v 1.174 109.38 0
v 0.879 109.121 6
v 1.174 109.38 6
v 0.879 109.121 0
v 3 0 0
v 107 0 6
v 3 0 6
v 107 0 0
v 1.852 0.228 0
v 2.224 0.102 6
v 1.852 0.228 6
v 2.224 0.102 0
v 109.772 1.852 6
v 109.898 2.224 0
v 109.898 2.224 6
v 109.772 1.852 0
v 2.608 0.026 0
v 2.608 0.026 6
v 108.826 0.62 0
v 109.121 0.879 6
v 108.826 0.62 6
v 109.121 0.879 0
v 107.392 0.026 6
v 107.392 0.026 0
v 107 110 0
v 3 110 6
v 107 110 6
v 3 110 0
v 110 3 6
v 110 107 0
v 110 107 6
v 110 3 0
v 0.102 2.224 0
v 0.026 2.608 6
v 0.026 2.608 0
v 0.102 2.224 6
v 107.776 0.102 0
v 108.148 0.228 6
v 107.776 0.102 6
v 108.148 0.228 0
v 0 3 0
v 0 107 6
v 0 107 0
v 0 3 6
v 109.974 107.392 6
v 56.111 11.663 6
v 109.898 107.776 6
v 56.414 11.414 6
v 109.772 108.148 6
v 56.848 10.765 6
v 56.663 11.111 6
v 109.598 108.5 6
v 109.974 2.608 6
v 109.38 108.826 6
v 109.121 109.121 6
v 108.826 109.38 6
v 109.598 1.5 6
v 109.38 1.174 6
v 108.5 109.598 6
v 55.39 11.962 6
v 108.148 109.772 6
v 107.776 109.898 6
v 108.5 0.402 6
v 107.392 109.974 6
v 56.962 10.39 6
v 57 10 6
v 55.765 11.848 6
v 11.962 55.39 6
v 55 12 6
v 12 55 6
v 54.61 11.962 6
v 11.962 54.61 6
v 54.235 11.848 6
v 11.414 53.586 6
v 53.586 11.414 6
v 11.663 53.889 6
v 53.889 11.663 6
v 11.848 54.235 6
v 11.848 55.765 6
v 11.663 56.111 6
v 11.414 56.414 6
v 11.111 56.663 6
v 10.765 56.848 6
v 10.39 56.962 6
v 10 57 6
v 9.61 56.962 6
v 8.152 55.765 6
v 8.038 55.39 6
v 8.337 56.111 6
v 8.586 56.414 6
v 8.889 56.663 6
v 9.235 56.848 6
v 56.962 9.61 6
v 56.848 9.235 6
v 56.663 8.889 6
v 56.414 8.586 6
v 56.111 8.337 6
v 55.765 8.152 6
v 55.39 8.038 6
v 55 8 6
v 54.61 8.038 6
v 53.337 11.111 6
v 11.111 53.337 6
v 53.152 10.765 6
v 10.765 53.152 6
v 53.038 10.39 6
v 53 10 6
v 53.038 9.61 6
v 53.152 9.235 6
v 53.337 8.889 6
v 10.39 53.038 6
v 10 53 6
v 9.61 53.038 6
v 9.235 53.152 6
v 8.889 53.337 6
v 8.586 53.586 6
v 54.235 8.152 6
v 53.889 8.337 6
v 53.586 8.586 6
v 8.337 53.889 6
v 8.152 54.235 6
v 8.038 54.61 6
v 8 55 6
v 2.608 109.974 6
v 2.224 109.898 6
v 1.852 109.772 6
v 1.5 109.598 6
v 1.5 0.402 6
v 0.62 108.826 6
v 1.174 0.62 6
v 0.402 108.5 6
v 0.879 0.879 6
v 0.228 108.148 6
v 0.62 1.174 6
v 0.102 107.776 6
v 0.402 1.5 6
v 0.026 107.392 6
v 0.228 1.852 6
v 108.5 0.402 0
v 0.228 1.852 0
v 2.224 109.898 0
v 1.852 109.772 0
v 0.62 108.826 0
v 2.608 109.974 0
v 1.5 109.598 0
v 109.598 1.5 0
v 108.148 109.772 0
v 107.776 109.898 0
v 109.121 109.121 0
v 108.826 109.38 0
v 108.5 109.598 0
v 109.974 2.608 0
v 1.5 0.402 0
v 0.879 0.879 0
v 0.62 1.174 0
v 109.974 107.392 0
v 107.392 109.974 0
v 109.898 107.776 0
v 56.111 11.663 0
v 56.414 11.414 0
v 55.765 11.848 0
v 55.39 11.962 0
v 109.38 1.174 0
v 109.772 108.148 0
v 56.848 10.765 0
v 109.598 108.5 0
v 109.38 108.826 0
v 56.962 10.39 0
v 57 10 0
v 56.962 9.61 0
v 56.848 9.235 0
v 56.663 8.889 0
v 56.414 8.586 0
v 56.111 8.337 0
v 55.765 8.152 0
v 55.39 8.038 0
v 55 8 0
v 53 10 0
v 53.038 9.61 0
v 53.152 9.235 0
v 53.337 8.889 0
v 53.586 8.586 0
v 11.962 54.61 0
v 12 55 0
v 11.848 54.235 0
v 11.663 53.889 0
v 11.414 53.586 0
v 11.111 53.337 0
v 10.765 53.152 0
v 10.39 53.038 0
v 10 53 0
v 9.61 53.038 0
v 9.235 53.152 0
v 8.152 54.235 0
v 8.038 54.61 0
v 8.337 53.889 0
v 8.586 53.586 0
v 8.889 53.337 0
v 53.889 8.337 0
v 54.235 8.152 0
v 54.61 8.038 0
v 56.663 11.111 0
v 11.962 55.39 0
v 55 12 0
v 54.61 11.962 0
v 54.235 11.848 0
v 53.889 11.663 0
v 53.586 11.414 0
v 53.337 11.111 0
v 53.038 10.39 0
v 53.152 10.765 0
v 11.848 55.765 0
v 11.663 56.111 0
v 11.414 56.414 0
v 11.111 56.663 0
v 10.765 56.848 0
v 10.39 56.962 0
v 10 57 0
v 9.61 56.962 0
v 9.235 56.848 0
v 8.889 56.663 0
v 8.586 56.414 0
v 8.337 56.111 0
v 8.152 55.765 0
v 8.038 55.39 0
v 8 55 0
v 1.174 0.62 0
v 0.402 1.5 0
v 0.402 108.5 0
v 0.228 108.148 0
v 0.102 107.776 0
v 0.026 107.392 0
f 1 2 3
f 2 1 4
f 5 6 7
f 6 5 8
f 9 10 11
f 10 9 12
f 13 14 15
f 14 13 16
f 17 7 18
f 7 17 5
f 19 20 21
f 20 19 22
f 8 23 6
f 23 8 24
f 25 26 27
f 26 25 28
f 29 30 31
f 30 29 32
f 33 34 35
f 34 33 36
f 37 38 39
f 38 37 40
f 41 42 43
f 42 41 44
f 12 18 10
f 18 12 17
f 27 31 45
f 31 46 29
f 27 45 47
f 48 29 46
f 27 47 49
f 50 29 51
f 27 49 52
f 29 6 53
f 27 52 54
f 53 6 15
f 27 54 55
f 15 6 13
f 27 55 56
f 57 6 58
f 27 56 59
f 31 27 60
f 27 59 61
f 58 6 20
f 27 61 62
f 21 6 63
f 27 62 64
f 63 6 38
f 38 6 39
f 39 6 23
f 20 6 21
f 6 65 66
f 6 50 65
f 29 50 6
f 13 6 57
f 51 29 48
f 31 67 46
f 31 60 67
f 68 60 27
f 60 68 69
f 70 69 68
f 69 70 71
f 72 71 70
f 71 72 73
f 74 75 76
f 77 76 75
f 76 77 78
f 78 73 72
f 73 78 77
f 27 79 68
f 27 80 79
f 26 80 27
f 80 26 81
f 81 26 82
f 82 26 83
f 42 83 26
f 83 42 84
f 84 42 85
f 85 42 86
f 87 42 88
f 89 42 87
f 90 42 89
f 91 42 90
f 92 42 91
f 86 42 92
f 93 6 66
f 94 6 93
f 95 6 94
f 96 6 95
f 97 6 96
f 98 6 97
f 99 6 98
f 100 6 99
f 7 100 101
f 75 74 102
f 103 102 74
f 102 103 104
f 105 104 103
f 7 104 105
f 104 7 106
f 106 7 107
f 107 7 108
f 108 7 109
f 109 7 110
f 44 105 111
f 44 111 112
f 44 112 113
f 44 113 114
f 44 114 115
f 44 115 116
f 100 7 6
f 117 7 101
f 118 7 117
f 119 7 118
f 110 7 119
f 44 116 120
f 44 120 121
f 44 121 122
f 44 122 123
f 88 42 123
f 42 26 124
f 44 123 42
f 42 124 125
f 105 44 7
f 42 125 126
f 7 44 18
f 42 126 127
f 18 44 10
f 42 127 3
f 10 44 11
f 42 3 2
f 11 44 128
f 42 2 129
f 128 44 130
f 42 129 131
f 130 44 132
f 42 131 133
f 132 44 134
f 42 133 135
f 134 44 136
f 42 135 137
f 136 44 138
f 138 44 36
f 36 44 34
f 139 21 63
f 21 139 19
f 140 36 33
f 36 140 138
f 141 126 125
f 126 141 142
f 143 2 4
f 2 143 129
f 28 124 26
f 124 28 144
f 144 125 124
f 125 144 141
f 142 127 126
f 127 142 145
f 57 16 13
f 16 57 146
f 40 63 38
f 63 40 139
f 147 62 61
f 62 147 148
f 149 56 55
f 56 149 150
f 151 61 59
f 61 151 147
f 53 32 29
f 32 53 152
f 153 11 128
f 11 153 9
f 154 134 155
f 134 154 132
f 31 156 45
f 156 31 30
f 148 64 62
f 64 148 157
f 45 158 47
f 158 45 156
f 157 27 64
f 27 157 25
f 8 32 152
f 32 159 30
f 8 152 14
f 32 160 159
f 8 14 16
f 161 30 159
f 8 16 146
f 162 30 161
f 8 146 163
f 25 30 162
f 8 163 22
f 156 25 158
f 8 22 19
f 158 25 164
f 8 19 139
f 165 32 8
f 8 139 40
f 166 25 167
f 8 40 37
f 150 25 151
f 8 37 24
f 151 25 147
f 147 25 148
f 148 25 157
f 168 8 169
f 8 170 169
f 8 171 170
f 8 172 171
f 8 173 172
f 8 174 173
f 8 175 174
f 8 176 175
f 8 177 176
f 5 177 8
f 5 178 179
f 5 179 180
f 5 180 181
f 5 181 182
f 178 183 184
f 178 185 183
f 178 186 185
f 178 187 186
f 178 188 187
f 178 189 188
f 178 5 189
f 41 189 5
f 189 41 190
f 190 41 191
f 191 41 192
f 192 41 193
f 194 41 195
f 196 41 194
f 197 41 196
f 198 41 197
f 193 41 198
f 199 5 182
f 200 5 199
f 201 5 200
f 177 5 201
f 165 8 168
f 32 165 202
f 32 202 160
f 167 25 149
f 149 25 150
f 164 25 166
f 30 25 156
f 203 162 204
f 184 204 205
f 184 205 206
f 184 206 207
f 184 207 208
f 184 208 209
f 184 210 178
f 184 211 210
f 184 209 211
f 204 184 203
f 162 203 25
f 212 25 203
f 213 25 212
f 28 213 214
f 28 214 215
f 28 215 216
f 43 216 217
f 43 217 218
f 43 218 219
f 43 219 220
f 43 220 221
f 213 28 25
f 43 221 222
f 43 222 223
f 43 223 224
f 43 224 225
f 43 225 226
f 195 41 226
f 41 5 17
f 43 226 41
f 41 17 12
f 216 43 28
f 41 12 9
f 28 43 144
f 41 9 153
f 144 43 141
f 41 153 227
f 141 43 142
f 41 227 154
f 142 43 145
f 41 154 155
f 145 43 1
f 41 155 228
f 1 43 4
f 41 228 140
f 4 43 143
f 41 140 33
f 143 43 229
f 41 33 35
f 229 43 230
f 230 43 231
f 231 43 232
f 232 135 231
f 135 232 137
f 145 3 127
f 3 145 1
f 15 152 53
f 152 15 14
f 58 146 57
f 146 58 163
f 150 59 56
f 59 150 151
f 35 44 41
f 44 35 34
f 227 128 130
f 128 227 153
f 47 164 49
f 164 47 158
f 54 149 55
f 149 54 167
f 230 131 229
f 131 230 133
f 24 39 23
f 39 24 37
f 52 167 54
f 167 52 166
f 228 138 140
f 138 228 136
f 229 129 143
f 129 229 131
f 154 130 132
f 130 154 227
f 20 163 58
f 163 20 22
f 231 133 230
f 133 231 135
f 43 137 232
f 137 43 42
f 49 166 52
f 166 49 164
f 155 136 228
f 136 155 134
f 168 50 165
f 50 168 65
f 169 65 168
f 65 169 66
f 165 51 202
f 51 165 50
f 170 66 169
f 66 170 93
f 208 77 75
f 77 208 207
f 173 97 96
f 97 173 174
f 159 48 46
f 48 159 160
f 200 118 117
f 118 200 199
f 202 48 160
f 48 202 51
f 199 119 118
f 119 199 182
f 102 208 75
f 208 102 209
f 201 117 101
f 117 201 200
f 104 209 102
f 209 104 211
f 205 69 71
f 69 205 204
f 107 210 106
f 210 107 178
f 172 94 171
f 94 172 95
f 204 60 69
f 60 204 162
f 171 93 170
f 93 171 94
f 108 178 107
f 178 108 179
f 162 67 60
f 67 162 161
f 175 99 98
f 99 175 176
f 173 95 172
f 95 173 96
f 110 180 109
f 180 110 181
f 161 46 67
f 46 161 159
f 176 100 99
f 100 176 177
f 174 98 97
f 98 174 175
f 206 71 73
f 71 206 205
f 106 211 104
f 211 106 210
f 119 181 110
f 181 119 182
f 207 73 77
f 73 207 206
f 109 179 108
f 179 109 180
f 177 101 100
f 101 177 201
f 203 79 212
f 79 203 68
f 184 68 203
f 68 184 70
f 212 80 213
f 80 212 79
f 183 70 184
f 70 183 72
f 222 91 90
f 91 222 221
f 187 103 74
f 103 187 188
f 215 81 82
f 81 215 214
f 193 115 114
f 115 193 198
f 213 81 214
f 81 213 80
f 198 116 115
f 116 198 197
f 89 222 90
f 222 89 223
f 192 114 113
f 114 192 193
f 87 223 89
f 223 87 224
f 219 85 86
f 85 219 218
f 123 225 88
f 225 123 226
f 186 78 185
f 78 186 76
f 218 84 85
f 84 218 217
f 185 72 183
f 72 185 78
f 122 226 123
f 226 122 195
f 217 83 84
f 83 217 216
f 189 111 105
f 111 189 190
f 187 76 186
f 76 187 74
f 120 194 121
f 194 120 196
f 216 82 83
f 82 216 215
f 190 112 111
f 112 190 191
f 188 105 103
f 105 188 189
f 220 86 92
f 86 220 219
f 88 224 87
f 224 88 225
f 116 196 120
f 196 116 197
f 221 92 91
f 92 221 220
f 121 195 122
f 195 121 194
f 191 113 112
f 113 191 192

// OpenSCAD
// Kitchen plate dryer support v2, based on Constantin Ganshin's original.
// Print flat with PLA and the companion Bambu Studio process preset.
// The preset reinforces the shells around the mounting holes and both broad faces.

$fa = 1;
$fs = 0.4;

// Main dimension variables
side_length = 110;    // Length of each side
thickness = 6;       // Thickness of the square
corner_radius = 3;   // Radius for rounded corners
hole_diameter = 4;   // Diameter of mounting holes
hole_margin = 10;    // Distance from edges for mounting holes

module rounded_square_support() {
    difference() {
        // Main square body
        hull() {
            // Four corners
            for(x = [corner_radius, side_length - corner_radius]) {
                for(y = [corner_radius, side_length - corner_radius]) {
                    translate([x, y, 0])
                        cylinder(r=corner_radius, h=thickness);
                }
            }
        }
        
        // Mounting holes - centered on two adjacent sides, 10 mm from each edge
        translate([side_length/2, hole_margin, -1])  // Bottom side
            cylinder(d=hole_diameter, h=thickness + 2);
        translate([hole_margin, side_length/2, -1])  // Left side
            cylinder(d=hole_diameter, h=thickness + 2);
    }
}

// Generate the support
rounded_square_support(); 
